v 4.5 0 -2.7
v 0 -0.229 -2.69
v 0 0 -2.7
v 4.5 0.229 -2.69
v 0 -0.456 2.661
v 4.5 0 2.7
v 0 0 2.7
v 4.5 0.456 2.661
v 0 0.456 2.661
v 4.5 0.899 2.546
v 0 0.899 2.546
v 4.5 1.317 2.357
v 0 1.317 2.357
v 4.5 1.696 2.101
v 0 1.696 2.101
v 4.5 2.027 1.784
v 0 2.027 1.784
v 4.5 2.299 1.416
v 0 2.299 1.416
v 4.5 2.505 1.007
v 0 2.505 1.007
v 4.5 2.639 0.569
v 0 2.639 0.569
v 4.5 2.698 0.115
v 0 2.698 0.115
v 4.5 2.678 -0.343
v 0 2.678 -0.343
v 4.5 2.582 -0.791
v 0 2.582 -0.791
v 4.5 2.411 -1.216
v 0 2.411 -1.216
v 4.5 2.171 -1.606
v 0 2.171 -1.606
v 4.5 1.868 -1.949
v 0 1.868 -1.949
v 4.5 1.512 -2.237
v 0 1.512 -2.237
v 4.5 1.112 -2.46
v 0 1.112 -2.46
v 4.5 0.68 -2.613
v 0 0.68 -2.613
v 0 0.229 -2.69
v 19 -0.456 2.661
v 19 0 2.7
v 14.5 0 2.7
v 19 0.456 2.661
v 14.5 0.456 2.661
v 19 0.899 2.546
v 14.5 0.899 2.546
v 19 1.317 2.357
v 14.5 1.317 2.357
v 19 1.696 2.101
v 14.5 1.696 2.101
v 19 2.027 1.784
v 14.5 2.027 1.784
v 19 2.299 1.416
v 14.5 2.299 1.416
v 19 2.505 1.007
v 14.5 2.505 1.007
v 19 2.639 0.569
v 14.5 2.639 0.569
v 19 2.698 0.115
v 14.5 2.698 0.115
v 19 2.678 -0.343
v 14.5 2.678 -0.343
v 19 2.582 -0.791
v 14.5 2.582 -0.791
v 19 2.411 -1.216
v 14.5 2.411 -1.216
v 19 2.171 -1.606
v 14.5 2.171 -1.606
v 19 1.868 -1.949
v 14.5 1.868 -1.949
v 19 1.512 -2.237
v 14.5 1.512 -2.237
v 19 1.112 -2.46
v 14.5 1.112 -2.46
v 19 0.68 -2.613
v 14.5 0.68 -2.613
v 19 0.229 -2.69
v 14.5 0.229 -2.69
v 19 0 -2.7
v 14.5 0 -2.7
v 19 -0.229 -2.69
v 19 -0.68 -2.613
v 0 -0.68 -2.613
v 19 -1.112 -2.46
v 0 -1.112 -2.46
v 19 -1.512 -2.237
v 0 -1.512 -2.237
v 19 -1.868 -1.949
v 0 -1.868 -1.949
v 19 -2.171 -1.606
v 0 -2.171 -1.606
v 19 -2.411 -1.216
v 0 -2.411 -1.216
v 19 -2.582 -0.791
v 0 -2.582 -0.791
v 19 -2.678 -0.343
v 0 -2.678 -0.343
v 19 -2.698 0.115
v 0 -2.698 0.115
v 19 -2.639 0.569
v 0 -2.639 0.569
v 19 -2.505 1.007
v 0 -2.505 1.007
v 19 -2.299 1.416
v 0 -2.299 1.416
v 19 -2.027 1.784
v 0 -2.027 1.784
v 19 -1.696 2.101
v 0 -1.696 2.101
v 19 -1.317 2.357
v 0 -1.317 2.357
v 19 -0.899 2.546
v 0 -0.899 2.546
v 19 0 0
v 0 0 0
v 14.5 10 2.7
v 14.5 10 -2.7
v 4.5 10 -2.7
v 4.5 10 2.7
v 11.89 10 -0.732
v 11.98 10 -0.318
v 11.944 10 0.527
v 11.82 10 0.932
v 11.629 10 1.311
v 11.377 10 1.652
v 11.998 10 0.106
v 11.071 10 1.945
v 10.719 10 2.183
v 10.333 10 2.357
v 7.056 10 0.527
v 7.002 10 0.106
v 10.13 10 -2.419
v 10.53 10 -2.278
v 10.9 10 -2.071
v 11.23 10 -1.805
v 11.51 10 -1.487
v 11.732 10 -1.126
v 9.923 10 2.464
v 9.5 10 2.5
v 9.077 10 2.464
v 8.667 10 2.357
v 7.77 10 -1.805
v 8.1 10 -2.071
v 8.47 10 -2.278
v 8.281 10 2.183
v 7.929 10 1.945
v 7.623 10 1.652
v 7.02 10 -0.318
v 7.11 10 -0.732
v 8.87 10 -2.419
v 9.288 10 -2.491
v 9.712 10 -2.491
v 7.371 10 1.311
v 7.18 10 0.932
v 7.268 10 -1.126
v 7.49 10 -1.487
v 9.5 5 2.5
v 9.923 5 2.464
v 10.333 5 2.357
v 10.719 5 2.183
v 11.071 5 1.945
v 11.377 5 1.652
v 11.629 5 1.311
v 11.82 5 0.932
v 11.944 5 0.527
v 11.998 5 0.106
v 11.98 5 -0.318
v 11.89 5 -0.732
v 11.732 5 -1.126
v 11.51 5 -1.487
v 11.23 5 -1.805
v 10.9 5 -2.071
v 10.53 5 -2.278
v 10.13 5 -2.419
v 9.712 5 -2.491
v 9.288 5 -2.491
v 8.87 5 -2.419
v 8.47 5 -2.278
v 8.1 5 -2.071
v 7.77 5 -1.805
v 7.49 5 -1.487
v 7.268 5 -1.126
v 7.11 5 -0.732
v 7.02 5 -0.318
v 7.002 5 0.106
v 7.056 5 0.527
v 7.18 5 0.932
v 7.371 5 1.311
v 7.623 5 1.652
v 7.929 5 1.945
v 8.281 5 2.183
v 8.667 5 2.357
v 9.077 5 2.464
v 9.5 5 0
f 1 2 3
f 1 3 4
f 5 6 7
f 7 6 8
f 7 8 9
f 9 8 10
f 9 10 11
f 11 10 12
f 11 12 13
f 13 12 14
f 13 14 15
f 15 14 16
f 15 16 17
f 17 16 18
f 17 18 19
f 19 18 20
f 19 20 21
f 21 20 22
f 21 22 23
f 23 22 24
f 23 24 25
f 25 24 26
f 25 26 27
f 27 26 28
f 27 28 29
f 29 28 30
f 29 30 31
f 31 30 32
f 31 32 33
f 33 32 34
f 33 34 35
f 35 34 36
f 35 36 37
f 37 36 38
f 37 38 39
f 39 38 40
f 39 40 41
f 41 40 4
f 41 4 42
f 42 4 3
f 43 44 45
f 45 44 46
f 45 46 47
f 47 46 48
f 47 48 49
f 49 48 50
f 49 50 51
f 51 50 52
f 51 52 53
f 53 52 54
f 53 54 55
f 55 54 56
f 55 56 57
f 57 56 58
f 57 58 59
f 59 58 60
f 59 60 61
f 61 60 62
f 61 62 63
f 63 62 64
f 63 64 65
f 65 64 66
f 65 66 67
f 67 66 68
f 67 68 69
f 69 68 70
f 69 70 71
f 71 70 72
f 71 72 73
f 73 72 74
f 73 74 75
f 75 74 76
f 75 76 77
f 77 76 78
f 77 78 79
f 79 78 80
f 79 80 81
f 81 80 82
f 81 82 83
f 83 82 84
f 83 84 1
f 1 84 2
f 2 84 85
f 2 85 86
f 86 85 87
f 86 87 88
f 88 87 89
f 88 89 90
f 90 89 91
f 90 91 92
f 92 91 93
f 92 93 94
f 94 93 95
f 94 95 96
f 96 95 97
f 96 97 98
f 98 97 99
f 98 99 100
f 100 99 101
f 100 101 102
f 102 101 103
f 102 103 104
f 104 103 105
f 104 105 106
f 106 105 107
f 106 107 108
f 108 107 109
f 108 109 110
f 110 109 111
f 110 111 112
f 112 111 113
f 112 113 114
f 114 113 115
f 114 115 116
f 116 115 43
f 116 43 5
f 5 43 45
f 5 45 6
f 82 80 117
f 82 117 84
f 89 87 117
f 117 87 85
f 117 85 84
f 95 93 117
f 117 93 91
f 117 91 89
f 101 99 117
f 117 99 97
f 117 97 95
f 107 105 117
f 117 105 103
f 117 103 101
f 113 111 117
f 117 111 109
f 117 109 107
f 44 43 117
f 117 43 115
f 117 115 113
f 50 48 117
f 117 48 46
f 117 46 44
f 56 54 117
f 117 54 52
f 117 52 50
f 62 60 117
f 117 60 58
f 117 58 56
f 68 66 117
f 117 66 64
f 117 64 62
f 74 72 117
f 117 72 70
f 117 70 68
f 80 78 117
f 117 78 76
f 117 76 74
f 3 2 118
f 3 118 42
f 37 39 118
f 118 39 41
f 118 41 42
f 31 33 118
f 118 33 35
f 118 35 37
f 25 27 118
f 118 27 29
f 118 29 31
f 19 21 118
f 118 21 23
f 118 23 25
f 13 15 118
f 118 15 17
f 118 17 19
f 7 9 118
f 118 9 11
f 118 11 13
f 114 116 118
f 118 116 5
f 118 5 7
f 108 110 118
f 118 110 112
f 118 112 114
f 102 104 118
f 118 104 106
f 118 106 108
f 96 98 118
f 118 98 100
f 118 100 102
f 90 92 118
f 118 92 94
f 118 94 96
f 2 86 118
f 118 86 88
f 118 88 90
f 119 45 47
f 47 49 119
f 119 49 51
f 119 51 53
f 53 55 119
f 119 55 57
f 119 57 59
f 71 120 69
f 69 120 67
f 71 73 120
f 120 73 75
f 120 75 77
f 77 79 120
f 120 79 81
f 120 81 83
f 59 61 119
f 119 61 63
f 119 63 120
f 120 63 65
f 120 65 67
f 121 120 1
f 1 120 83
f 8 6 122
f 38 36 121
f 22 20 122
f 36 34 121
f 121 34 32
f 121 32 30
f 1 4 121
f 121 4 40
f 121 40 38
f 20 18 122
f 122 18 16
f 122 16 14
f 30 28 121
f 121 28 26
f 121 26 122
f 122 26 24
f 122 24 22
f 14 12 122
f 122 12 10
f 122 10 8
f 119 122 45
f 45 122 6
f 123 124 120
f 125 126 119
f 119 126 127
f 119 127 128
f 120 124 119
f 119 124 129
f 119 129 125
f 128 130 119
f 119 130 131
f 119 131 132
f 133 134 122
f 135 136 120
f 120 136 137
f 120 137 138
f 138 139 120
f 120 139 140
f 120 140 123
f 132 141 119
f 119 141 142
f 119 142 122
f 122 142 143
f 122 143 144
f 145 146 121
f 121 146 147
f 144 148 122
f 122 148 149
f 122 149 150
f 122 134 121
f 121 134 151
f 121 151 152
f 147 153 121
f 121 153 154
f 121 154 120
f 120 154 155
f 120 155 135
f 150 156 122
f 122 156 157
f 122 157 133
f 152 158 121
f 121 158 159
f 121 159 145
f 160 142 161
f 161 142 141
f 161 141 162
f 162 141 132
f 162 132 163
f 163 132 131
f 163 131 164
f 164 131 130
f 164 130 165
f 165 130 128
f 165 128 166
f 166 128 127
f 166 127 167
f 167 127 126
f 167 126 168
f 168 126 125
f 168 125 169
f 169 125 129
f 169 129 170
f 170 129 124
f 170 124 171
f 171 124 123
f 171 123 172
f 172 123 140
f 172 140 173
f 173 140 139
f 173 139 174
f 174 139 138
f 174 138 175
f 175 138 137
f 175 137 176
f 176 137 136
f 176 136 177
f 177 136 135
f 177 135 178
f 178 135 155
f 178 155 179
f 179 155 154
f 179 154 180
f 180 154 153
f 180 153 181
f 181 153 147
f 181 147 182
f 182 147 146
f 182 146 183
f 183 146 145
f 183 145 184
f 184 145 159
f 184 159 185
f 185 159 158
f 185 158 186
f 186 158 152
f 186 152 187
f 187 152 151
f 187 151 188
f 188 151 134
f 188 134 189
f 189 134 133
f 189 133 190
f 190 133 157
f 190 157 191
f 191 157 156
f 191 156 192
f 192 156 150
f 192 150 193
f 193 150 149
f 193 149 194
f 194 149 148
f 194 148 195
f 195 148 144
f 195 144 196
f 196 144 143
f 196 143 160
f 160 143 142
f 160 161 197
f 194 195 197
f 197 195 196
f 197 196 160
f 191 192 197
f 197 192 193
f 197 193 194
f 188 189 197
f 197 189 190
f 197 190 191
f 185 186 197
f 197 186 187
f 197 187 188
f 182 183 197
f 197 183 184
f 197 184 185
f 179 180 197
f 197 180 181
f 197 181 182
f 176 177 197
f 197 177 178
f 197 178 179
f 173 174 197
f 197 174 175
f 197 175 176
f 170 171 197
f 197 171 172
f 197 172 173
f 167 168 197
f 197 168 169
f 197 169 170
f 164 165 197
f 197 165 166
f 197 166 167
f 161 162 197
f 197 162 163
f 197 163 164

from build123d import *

# Parameters (mm, degrees)
SKETCH1_R           = 2.7
BOSS_EXTRUDE1_DEPTH = 19
SKETCH2_W           = 10
SKETCH2_H           = 5.4
BOSS_EXTRUDE2_DEPTH = 10
SKETCH3_R           = 2.5
CUT_EXTRUDE1_DEPTH  = 5


with BuildPart() as part:
    # Sketch1 → Boss-Extrude1 (new body)
    with BuildSketch(Plane(origin=(0, 0, 0), x_dir=(0, 0, -1), z_dir=(1, 0, 0))):
        Circle(SKETCH1_R)
    extrude(amount=BOSS_EXTRUDE1_DEPTH)

    # Sketch2 → Boss-Extrude2 (add)
    with BuildSketch(Plane(origin=(0, 0, 0), x_dir=(1, 0, 0), z_dir=(0, 1, 0))):
        with Locations((9.5, 0)):
            Rectangle(SKETCH2_W, SKETCH2_H)
    extrude(amount=BOSS_EXTRUDE2_DEPTH)

    # Sketch3 → Cut-Extrude1 (cut)
    with BuildSketch(Plane(origin=(0, 10, 0), x_dir=(1, 0, 0), z_dir=(0, 1, 0))):
        with Locations((9.5, 0)):
            Circle(SKETCH3_R)
    extrude(amount=-CUT_EXTRUDE1_DEPTH, mode=Mode.SUBTRACT)


solid = part.part
